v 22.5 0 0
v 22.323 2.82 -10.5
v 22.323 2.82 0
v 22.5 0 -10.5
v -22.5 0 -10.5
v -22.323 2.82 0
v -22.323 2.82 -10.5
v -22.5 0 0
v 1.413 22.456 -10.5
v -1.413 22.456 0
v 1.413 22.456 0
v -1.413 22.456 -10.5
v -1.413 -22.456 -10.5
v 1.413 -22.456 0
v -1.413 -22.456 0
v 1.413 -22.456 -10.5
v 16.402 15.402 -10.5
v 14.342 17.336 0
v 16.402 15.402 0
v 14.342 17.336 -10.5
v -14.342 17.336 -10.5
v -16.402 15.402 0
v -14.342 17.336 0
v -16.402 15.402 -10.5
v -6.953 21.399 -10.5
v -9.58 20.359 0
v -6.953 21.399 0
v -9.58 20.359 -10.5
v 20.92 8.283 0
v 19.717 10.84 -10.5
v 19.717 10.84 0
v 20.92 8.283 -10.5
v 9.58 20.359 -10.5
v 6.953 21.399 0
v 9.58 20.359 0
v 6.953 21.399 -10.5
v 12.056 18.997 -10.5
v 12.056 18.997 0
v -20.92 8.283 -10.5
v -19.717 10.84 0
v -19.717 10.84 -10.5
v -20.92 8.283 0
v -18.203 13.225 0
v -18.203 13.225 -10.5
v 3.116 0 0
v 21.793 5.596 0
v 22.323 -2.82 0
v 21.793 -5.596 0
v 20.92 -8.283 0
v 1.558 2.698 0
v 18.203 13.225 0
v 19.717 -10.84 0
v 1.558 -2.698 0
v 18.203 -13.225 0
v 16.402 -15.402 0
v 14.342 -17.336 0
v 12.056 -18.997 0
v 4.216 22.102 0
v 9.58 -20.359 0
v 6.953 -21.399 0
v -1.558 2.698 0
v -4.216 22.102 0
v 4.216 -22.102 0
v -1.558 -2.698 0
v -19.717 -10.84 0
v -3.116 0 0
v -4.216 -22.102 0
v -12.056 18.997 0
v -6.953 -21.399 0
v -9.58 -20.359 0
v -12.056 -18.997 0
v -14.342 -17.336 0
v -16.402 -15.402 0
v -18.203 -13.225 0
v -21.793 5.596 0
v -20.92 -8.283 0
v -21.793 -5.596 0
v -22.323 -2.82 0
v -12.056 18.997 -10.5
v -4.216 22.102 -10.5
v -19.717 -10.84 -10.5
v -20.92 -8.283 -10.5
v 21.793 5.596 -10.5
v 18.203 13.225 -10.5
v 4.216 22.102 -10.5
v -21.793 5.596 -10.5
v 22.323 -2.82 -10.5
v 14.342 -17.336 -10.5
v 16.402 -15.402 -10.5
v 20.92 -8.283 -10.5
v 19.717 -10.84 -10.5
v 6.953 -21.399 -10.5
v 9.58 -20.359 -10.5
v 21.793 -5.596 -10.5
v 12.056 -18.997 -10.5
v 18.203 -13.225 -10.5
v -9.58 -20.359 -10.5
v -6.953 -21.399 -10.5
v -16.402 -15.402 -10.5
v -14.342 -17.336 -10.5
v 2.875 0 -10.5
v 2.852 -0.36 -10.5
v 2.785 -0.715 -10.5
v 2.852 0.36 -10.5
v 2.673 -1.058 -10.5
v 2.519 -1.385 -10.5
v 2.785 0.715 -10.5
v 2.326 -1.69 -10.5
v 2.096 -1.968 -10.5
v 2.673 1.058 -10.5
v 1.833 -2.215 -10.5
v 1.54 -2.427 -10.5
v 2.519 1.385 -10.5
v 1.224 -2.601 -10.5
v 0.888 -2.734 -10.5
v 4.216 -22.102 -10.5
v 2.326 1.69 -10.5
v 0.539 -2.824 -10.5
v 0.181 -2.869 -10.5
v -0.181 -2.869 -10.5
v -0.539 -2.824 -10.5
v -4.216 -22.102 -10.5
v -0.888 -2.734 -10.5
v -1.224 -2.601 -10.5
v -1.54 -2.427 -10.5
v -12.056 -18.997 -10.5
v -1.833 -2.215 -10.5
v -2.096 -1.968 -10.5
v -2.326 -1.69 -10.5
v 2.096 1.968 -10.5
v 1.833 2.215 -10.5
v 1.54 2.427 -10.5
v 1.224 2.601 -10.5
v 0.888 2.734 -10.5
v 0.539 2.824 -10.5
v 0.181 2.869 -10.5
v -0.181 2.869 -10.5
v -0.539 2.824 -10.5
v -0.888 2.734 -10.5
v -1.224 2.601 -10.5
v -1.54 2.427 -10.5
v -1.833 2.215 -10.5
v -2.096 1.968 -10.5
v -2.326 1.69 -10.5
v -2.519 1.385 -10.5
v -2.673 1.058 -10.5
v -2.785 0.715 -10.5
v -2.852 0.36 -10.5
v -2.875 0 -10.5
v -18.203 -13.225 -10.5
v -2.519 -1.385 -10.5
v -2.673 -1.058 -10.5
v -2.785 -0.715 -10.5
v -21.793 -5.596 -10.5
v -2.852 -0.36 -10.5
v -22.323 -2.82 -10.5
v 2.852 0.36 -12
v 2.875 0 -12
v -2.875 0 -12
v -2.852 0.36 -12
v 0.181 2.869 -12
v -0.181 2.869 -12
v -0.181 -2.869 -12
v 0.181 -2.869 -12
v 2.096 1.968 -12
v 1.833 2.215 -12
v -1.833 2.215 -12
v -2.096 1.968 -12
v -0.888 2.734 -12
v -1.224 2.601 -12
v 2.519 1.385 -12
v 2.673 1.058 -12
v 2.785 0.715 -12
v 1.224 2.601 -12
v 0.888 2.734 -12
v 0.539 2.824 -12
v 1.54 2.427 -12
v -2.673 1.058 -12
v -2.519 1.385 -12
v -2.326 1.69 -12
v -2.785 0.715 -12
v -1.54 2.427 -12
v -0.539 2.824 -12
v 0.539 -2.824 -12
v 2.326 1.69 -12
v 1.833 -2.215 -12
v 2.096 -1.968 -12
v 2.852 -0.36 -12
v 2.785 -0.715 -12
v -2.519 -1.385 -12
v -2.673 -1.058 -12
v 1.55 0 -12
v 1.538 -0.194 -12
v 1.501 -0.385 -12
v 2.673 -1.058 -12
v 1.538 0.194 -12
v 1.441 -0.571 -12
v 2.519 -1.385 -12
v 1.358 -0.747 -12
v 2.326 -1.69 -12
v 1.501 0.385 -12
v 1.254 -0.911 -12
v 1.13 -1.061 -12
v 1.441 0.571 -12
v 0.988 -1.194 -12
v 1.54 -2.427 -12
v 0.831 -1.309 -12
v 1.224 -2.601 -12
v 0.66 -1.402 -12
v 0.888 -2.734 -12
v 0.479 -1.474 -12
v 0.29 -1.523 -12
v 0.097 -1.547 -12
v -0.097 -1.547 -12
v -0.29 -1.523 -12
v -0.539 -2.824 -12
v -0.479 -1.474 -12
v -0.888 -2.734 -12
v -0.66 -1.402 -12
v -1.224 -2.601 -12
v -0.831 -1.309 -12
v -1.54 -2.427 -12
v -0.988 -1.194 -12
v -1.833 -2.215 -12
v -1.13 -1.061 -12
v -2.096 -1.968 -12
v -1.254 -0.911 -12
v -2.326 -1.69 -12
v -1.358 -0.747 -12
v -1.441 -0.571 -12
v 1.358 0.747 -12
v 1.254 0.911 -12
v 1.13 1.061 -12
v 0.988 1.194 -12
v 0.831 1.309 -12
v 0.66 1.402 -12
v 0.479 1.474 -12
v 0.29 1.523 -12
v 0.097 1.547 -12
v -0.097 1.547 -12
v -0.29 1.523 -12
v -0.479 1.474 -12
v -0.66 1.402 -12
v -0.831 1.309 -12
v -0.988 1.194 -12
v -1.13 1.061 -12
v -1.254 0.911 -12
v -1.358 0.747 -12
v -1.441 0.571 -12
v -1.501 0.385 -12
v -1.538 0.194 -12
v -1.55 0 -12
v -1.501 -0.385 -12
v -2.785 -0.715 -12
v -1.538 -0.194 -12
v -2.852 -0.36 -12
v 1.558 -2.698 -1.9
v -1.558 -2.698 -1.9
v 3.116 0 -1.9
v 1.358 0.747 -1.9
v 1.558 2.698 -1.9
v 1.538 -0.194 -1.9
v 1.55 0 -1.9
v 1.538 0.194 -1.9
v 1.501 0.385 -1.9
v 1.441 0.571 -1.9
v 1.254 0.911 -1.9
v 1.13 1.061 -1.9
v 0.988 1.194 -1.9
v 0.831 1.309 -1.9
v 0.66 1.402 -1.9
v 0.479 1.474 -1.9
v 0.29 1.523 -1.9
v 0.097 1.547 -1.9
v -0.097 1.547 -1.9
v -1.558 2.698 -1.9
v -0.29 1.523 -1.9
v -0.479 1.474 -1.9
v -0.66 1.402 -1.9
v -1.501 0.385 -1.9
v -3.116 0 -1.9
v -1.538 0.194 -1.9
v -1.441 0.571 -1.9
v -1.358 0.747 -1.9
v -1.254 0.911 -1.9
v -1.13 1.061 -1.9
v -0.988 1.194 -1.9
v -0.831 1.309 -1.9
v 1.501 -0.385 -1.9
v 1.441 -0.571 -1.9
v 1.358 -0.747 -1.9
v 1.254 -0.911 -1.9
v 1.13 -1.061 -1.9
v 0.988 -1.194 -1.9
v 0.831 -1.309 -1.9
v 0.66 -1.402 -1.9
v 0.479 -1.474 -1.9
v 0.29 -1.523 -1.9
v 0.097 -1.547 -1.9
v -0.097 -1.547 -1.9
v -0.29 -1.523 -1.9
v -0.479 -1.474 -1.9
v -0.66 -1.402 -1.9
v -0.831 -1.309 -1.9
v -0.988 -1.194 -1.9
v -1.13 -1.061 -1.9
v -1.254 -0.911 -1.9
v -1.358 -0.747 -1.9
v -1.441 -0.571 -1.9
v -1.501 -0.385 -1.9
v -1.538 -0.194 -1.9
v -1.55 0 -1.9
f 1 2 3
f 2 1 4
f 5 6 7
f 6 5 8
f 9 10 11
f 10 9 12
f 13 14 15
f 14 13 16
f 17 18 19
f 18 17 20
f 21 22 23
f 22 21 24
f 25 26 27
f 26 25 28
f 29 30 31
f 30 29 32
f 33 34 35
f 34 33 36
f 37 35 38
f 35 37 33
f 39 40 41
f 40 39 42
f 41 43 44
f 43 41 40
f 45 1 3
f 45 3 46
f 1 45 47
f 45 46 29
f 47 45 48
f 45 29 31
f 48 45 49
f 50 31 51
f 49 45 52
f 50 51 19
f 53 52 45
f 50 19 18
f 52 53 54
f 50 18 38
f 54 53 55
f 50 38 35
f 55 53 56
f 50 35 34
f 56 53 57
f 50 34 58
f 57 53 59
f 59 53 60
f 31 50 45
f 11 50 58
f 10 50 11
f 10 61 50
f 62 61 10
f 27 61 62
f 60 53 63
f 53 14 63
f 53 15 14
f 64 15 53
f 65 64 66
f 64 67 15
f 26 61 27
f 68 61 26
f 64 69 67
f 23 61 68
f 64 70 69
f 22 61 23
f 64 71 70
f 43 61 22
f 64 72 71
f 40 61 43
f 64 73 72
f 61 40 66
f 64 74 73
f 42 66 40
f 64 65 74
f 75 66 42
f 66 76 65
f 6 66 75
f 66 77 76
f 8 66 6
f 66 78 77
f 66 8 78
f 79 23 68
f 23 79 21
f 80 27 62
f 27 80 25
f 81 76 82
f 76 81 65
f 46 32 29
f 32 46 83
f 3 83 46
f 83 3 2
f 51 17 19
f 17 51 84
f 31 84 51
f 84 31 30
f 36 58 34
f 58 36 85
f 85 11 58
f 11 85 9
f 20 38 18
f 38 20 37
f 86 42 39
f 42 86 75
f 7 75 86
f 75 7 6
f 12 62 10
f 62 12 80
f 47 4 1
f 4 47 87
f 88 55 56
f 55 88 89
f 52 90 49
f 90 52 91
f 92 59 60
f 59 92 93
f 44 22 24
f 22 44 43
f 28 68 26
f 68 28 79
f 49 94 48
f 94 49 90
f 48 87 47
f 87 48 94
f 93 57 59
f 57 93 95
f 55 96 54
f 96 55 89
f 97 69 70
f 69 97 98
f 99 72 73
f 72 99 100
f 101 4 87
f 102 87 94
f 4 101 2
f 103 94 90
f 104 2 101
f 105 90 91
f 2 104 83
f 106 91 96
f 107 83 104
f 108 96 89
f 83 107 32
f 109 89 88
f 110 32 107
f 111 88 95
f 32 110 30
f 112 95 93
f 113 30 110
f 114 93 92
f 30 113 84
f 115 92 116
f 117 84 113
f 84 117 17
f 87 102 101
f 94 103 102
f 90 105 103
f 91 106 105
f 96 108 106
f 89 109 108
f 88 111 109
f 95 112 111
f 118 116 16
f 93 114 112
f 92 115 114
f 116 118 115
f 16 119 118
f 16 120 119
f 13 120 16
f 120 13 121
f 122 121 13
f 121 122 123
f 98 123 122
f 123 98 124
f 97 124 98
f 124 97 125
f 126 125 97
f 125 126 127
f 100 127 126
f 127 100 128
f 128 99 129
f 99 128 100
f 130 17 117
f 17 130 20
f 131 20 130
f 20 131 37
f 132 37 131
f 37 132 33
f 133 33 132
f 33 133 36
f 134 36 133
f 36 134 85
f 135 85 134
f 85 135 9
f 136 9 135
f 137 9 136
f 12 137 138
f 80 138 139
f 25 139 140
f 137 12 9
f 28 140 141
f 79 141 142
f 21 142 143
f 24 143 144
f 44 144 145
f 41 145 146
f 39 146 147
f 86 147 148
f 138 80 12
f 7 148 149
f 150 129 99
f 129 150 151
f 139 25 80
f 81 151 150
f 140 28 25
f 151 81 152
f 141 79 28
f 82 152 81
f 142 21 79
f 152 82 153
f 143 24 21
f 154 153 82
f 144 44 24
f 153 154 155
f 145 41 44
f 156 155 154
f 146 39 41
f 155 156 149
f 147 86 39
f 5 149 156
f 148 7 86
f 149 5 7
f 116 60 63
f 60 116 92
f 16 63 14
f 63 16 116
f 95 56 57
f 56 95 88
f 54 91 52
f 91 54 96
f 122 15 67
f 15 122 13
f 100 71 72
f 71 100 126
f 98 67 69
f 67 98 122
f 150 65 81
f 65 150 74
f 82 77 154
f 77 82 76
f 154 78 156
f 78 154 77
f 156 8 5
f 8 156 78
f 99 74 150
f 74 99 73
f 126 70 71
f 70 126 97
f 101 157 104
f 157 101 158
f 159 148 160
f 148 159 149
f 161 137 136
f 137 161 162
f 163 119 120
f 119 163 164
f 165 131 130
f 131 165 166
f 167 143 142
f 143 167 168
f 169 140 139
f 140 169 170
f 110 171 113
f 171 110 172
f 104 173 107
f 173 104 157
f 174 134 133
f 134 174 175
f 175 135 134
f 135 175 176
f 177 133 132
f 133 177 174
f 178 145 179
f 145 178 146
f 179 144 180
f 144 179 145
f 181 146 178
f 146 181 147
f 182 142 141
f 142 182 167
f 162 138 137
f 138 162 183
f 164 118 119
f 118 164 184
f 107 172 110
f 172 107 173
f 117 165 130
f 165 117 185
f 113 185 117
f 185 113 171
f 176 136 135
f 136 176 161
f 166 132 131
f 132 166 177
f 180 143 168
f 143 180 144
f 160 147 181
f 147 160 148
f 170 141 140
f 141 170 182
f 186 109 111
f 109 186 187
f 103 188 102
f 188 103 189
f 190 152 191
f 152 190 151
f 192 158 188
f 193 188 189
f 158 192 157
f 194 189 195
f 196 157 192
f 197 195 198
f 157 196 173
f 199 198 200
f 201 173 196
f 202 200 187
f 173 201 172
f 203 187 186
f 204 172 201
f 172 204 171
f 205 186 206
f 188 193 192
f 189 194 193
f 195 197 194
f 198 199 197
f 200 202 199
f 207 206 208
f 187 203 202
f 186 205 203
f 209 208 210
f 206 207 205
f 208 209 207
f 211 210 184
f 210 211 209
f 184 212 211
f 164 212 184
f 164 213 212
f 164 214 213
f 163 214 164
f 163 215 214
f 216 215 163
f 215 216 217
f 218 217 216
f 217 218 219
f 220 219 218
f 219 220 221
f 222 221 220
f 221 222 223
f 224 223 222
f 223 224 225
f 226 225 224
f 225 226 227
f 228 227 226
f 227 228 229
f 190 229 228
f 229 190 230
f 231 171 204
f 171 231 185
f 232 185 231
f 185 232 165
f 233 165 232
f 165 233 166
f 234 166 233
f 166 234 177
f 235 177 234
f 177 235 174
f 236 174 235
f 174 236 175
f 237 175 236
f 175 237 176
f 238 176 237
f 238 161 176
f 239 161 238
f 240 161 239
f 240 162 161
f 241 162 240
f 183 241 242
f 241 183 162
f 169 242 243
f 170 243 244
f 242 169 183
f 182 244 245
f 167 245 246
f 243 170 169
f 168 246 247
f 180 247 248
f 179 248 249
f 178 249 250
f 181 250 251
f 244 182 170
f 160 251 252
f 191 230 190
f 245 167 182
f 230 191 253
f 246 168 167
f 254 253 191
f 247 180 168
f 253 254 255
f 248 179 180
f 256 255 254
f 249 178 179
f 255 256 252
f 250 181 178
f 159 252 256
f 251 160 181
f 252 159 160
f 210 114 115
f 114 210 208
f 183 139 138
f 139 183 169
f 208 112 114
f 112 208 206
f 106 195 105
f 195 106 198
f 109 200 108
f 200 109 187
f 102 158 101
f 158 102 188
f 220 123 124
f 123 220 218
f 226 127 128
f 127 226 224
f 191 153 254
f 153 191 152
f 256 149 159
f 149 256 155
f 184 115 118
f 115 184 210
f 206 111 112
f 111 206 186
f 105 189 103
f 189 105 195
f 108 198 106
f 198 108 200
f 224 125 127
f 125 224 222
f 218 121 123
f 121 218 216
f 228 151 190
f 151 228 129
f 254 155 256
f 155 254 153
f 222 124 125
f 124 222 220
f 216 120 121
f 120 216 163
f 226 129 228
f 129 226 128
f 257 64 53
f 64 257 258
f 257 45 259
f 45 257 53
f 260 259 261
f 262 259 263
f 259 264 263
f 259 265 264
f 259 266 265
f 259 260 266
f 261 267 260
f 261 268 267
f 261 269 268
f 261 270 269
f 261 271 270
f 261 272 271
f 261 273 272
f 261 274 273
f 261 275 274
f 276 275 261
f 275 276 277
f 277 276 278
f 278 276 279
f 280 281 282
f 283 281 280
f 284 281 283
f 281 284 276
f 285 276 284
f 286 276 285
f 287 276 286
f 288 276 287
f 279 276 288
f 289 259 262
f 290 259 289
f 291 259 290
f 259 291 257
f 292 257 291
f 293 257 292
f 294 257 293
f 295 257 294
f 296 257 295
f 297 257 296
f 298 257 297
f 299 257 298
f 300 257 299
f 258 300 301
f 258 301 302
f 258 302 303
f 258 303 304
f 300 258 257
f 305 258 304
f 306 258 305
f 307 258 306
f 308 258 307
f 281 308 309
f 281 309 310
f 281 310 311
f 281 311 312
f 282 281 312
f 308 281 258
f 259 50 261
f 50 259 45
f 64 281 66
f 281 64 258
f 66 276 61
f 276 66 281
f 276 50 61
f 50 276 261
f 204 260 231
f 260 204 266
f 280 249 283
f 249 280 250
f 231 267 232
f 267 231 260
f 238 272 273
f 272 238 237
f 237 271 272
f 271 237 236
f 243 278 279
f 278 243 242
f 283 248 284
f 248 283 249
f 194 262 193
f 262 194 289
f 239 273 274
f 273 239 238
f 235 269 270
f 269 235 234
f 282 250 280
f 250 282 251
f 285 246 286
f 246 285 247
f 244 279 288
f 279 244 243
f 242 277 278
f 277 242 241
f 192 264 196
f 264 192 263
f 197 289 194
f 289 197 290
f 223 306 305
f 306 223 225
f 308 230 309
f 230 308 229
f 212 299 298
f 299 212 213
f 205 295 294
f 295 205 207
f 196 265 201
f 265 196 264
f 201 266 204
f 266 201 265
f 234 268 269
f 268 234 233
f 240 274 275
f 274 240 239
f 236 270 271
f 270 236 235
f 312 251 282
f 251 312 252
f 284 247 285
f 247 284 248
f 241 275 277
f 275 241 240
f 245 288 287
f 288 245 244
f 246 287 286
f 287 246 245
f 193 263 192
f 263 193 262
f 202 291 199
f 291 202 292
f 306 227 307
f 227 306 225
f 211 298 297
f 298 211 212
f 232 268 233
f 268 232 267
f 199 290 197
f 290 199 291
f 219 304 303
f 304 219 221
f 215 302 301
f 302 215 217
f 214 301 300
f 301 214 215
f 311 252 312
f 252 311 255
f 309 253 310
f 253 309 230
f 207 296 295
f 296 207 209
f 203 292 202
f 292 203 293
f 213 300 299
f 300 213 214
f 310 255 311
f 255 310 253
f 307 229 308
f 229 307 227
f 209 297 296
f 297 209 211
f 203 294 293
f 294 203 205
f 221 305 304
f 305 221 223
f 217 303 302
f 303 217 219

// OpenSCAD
$fn = 50;


difference() {
	union() {
		translate(v = [0, 0, -10.5000000000]) {
			cylinder(h = 10.5000000000, r = 22.5000000000);
		}
		translate(v = [0, 0, -12.0000000000]) {
			cylinder(h = 12, r = 2.8750000000);
		}
	}
	union() {
		translate(v = [0, 0, 0]) {
			rotate(a = [0, 0, 0]) {
				difference() {
					union() {
						translate(v = [0, 0, -1.9000000000]) {
							linear_extrude(height = 1.9000000000) {
								polygon(points = [[3.1158000000, 0.0000000000], [1.5579000000, 2.6983619531], [-1.5579000000, 2.6983619531], [-3.1158000000, 0.0000000000], [-1.5579000000, -2.6983619531], [1.5579000000, -2.6983619531]]);
							}
						}
					}
					union();
				}
			}
		}
		#translate(v = [0, 0, -100.0000000000]) {
			cylinder(h = 200, r = 1.5500000000);
		}
	}
}
